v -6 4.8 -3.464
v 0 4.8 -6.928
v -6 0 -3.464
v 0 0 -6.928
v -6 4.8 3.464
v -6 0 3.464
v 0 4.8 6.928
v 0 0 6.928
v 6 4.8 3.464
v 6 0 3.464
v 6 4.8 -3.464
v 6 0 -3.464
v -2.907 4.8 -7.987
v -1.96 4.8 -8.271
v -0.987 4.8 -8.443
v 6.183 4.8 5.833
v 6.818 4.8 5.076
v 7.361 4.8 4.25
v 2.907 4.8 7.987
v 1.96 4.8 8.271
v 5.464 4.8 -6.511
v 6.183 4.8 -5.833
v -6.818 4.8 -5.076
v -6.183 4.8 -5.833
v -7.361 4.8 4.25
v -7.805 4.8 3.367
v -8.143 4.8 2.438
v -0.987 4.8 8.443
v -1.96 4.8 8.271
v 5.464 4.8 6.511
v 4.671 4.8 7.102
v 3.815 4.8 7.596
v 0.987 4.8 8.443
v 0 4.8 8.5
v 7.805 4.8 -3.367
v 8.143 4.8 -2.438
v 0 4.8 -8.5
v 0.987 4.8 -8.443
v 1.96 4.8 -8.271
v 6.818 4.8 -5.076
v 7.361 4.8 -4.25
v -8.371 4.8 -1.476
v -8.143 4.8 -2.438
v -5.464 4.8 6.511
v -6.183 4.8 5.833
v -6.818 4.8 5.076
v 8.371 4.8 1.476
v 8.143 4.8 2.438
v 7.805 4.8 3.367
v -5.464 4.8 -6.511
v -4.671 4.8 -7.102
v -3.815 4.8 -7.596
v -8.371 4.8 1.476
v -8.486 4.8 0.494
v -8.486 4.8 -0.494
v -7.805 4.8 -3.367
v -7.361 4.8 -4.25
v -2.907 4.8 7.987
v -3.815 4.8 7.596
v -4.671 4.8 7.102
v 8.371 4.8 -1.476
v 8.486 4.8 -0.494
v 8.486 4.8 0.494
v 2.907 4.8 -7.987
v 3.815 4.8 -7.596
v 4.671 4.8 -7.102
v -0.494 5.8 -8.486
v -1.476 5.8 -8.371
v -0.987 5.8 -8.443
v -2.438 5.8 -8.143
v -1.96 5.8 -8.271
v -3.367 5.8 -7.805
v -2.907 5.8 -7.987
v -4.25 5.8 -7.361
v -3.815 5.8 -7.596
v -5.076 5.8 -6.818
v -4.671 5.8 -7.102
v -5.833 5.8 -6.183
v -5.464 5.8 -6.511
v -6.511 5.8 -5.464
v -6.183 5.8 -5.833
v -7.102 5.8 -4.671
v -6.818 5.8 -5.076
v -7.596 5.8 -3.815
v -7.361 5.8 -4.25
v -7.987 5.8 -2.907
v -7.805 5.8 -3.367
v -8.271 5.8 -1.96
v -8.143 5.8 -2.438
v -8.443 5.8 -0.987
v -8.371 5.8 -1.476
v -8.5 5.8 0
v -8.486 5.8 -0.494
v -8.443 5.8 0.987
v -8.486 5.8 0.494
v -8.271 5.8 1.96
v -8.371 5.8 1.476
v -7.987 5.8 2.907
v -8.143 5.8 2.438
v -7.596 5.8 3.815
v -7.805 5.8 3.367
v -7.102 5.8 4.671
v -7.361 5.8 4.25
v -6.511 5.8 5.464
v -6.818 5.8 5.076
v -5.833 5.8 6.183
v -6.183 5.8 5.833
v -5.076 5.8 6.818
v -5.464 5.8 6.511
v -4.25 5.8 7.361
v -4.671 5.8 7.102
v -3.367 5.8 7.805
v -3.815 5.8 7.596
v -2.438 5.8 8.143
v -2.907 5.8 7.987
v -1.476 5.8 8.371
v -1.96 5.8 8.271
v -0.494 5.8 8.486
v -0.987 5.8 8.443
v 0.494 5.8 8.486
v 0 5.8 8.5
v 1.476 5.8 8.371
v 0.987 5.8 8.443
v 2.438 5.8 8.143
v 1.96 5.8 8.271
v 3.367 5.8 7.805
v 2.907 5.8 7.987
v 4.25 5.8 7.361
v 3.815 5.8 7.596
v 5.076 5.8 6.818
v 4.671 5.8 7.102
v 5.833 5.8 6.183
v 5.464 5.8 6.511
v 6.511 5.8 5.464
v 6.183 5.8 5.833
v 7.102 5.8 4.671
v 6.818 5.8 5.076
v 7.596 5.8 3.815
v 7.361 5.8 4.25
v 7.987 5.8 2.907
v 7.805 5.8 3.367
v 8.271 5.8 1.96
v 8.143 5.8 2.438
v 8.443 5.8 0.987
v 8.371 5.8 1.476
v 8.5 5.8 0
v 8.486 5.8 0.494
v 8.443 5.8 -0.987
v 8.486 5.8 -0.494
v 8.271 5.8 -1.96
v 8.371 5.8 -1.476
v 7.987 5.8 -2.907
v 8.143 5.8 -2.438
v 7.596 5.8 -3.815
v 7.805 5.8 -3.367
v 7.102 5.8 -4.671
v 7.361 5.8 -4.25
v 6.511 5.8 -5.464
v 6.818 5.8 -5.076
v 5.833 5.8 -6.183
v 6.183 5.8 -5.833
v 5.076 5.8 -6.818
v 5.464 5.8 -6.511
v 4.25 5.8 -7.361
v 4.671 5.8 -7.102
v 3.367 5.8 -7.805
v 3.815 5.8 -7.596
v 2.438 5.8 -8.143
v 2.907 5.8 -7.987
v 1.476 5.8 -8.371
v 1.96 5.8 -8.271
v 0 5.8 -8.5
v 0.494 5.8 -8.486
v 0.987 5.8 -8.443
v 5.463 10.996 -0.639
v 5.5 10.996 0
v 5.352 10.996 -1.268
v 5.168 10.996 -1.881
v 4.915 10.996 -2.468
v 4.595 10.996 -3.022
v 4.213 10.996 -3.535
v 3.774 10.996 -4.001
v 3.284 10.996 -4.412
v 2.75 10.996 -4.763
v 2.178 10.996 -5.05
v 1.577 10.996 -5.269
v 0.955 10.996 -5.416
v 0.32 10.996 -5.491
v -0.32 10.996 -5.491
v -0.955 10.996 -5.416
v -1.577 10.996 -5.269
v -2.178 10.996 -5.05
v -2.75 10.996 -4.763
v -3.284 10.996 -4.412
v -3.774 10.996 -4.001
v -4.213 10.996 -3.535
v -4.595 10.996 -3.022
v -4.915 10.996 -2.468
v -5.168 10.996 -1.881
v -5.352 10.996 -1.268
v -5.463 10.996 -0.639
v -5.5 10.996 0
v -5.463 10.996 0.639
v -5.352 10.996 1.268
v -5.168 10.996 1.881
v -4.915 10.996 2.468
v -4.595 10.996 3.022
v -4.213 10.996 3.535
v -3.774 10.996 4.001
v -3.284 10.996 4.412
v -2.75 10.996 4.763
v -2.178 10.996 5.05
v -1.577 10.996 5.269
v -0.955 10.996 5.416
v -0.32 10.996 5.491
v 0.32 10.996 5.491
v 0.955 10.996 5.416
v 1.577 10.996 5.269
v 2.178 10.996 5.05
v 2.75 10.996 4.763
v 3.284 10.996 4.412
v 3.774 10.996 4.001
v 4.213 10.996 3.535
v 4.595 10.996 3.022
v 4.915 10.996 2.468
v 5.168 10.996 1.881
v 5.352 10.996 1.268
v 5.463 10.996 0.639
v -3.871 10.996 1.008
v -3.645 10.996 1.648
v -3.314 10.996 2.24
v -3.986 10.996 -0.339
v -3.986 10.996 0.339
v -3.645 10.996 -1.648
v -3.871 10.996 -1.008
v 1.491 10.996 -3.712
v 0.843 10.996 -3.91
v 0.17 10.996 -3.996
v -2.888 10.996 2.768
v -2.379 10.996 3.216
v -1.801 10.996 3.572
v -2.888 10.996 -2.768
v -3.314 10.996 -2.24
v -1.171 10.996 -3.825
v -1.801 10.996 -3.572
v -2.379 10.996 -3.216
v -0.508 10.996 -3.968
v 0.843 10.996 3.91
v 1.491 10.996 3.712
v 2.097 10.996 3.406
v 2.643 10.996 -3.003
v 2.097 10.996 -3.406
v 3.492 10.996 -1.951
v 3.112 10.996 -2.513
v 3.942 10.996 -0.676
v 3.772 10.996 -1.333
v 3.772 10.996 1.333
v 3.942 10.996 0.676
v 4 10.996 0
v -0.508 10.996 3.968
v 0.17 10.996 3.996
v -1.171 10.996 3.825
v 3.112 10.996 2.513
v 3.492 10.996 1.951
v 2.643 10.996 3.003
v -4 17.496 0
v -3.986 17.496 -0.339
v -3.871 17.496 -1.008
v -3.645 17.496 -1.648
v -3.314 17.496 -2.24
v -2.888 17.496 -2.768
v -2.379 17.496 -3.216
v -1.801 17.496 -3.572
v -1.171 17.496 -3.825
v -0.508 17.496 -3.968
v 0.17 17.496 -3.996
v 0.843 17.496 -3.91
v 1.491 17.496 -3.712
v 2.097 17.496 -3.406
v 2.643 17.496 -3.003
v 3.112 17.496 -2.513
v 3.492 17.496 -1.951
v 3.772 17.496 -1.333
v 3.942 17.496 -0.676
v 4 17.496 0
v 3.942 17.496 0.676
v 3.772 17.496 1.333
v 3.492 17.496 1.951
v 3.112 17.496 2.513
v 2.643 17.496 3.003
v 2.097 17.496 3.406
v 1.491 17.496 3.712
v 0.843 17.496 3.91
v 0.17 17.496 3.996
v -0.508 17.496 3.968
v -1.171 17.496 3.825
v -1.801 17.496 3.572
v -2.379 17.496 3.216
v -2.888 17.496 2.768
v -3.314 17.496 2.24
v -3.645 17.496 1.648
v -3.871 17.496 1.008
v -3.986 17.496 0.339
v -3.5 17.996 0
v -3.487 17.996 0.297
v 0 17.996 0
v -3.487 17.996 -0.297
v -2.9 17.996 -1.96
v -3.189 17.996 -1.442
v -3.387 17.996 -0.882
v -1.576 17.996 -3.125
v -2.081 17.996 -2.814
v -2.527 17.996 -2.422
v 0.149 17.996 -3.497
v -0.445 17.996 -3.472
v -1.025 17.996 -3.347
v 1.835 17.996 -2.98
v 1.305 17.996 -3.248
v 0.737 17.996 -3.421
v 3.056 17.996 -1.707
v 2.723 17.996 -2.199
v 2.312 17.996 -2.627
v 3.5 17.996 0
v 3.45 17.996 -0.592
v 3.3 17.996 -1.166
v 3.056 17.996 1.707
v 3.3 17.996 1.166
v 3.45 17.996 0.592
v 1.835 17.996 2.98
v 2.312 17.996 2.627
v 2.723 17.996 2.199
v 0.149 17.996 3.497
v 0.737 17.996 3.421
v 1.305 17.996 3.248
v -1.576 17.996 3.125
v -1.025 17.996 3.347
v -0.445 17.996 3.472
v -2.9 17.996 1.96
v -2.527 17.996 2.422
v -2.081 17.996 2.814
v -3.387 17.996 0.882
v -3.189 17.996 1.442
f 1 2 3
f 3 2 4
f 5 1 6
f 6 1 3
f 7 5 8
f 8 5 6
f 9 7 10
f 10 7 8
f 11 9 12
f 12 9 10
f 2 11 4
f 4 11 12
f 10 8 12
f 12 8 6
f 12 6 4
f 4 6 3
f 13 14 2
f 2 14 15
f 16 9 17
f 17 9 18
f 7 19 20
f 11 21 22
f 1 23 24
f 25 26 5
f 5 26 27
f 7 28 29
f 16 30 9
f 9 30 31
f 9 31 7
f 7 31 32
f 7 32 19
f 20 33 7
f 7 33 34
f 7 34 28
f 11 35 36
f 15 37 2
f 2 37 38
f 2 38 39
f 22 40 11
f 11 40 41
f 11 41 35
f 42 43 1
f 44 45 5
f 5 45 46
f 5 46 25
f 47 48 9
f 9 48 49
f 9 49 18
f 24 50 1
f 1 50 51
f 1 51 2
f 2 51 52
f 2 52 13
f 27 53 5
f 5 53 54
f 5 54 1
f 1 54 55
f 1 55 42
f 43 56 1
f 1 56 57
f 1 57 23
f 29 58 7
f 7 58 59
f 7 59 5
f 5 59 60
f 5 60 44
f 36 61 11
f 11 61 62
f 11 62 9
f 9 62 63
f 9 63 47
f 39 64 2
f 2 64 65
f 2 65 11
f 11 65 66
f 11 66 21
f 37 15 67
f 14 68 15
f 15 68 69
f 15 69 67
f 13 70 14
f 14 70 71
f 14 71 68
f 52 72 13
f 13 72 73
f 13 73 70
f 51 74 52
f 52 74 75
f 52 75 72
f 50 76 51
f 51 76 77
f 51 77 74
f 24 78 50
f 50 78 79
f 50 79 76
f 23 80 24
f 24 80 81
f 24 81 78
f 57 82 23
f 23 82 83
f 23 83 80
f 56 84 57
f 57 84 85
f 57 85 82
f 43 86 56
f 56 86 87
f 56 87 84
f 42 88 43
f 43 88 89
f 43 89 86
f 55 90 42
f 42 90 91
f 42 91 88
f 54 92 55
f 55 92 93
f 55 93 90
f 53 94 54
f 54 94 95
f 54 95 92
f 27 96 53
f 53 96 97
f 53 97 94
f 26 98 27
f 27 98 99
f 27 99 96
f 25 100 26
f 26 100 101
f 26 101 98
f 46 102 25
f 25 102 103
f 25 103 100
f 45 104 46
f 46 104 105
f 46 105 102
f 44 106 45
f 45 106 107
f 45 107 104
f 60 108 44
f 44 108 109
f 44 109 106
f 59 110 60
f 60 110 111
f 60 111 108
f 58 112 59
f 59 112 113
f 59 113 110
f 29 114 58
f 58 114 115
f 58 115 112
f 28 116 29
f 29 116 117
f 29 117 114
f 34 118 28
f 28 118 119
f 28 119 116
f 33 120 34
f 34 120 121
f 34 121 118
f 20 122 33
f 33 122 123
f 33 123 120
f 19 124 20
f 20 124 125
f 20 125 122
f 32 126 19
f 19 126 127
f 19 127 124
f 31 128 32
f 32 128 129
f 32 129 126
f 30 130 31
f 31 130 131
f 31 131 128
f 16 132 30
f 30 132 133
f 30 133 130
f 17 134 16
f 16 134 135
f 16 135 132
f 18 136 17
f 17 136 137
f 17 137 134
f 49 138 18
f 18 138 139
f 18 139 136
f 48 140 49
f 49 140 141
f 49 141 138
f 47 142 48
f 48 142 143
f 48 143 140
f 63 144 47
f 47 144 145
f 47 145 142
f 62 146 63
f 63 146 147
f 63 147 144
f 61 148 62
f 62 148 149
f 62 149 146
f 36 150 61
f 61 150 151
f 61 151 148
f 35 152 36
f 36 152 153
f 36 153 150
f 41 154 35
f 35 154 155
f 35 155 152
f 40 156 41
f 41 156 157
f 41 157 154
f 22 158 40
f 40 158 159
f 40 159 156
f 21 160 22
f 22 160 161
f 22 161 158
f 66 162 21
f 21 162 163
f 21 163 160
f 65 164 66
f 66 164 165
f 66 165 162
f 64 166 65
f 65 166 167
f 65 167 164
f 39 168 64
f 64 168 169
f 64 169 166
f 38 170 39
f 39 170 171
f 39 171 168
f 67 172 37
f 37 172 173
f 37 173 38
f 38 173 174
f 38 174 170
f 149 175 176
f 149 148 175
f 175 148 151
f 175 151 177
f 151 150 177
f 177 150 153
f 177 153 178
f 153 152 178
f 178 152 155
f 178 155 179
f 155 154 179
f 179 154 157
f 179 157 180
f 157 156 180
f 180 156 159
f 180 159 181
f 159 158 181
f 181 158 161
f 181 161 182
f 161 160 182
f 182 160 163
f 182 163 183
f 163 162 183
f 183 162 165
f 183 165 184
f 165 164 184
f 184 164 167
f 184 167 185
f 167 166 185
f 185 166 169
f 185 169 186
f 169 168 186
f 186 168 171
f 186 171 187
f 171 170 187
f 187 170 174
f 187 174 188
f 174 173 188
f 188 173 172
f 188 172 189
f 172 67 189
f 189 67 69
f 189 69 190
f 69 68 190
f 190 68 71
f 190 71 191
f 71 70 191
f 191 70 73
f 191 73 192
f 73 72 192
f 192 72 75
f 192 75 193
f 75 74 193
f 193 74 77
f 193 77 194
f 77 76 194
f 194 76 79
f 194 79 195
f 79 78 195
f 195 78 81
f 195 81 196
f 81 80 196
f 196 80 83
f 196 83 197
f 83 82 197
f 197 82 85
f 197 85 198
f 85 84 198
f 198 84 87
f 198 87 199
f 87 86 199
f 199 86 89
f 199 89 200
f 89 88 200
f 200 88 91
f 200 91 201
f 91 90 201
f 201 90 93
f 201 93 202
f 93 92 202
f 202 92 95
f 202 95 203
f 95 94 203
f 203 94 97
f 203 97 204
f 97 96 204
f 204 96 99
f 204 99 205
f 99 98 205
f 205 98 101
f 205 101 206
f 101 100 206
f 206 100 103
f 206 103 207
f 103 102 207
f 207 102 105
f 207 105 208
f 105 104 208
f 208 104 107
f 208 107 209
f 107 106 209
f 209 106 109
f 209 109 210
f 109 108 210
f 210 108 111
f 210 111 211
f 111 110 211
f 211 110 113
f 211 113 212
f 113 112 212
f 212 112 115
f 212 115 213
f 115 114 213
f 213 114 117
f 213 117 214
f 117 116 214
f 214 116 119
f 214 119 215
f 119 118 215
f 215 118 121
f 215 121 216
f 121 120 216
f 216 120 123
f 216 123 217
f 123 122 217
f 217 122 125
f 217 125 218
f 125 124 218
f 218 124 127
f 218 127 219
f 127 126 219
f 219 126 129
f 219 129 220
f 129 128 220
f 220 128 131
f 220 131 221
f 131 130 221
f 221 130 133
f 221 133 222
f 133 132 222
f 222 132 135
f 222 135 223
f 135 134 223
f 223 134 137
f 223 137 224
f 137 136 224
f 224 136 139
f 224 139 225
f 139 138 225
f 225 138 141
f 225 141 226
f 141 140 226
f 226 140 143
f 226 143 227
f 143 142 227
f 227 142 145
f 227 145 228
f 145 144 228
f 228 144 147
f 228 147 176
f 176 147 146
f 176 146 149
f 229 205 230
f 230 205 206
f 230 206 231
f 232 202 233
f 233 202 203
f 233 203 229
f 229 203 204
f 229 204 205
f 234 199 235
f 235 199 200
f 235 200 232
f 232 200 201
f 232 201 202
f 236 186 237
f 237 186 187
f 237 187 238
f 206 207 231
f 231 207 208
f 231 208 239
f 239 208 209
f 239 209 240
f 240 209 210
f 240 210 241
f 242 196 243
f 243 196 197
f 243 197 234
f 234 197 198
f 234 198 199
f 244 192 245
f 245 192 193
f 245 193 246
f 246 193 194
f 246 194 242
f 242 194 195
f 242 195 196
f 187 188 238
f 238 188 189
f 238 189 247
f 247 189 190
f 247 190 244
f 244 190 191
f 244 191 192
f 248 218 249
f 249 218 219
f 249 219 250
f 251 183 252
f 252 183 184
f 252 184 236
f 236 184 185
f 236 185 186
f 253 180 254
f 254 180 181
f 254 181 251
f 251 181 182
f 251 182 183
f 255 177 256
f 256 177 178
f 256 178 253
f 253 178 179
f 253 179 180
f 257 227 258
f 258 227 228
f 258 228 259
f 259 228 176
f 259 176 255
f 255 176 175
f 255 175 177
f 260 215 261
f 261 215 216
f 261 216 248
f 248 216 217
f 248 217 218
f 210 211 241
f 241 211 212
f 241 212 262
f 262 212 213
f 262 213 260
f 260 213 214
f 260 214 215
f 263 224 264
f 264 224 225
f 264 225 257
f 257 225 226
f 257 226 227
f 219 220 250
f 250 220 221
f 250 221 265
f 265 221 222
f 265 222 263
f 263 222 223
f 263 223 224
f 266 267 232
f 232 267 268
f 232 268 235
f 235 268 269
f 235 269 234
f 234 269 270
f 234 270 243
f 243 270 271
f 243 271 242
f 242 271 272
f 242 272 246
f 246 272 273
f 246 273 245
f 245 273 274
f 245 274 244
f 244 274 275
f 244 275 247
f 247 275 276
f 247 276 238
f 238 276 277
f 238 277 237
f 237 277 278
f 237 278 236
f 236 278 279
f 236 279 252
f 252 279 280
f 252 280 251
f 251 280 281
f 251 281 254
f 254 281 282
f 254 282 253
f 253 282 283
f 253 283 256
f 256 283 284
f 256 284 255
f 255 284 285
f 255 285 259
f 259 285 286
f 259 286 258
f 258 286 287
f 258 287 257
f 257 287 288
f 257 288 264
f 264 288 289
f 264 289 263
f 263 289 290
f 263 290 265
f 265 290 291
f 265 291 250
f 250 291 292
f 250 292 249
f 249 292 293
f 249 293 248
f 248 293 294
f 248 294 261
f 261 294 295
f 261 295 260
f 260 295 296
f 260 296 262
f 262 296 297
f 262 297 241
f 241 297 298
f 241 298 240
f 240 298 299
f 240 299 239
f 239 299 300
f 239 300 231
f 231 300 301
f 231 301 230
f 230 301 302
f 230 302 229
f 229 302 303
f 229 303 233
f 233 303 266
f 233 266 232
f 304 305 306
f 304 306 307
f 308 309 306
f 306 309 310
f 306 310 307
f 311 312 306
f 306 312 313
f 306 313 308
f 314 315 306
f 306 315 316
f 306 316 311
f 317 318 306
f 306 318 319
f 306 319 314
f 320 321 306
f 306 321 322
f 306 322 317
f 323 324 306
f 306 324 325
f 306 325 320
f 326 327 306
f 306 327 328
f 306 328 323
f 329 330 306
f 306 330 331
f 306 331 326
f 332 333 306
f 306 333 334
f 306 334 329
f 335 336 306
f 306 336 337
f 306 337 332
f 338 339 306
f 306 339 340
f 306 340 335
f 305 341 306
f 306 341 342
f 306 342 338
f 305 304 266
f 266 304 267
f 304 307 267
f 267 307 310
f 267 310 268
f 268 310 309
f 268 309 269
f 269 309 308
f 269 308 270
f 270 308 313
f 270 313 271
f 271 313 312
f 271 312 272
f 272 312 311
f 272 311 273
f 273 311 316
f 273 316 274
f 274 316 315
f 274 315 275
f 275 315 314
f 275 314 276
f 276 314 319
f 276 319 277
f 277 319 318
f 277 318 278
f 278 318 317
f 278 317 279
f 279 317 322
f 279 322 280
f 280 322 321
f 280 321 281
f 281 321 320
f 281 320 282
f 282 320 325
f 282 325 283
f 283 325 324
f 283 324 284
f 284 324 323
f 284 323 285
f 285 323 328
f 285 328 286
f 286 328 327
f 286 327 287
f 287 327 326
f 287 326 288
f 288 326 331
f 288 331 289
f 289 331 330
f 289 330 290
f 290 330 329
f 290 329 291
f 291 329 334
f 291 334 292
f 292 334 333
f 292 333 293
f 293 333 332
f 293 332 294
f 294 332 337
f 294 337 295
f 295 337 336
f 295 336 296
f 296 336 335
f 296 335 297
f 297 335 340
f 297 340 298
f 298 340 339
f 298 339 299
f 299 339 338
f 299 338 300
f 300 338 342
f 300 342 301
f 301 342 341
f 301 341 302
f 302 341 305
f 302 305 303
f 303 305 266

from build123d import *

# Parameters (mm, degrees)
BOSS_EXTRUDE1_DEPTH = 4.8
SKETCH2_R           = 8.5
BOSS_EXTRUDE2_DEPTH = 1
CHAMFER1_SIZE       = 0.5


with BuildPart() as part:
    # Sketch1 → Boss-Extrude1 (new body)
    with BuildSketch(Plane(origin=(0, 0, 0), x_dir=(1, 0, 0), z_dir=(0, 1, 0))):
        Polygon((0, 6.92820323), (6, 3.464101615), (6, -3.464101615), (0, -6.92820323), (-6, -3.464101615), (-6, 3.464101615), align=None)
    extrude(amount=BOSS_EXTRUDE1_DEPTH)

    # Sketch2 → Boss-Extrude2 (add)
    with BuildSketch(Plane(origin=(0, 4.8, 0), x_dir=(1, 0, 0), z_dir=(0, 1, 0))):
        with Locations(Location((0, 0, 0), (0, 0, 270))):
            Circle(SKETCH2_R)
    extrude(amount=BOSS_EXTRUDE2_DEPTH)

    # Sketch3 → Revolve1 (revolve)
    with BuildSketch(Plane.XY):
        Polygon((0, 5.8), (8.5, 5.8), (5.5, 10.996152423), (4, 10.996152423), (4, 17.996152423), (0, 17.996152423), align=None)
    revolve(axis=Axis((0, 5.8, 0), (0, 1, 0)))

    # Chamfer1
    chamfer1_edges = [part.edges().sort_by_distance(p)[0] for p in [
        (-4, 17.996152423, 0),
    ]]
    chamfer(chamfer1_edges, length=CHAMFER1_SIZE)


solid = part.part
